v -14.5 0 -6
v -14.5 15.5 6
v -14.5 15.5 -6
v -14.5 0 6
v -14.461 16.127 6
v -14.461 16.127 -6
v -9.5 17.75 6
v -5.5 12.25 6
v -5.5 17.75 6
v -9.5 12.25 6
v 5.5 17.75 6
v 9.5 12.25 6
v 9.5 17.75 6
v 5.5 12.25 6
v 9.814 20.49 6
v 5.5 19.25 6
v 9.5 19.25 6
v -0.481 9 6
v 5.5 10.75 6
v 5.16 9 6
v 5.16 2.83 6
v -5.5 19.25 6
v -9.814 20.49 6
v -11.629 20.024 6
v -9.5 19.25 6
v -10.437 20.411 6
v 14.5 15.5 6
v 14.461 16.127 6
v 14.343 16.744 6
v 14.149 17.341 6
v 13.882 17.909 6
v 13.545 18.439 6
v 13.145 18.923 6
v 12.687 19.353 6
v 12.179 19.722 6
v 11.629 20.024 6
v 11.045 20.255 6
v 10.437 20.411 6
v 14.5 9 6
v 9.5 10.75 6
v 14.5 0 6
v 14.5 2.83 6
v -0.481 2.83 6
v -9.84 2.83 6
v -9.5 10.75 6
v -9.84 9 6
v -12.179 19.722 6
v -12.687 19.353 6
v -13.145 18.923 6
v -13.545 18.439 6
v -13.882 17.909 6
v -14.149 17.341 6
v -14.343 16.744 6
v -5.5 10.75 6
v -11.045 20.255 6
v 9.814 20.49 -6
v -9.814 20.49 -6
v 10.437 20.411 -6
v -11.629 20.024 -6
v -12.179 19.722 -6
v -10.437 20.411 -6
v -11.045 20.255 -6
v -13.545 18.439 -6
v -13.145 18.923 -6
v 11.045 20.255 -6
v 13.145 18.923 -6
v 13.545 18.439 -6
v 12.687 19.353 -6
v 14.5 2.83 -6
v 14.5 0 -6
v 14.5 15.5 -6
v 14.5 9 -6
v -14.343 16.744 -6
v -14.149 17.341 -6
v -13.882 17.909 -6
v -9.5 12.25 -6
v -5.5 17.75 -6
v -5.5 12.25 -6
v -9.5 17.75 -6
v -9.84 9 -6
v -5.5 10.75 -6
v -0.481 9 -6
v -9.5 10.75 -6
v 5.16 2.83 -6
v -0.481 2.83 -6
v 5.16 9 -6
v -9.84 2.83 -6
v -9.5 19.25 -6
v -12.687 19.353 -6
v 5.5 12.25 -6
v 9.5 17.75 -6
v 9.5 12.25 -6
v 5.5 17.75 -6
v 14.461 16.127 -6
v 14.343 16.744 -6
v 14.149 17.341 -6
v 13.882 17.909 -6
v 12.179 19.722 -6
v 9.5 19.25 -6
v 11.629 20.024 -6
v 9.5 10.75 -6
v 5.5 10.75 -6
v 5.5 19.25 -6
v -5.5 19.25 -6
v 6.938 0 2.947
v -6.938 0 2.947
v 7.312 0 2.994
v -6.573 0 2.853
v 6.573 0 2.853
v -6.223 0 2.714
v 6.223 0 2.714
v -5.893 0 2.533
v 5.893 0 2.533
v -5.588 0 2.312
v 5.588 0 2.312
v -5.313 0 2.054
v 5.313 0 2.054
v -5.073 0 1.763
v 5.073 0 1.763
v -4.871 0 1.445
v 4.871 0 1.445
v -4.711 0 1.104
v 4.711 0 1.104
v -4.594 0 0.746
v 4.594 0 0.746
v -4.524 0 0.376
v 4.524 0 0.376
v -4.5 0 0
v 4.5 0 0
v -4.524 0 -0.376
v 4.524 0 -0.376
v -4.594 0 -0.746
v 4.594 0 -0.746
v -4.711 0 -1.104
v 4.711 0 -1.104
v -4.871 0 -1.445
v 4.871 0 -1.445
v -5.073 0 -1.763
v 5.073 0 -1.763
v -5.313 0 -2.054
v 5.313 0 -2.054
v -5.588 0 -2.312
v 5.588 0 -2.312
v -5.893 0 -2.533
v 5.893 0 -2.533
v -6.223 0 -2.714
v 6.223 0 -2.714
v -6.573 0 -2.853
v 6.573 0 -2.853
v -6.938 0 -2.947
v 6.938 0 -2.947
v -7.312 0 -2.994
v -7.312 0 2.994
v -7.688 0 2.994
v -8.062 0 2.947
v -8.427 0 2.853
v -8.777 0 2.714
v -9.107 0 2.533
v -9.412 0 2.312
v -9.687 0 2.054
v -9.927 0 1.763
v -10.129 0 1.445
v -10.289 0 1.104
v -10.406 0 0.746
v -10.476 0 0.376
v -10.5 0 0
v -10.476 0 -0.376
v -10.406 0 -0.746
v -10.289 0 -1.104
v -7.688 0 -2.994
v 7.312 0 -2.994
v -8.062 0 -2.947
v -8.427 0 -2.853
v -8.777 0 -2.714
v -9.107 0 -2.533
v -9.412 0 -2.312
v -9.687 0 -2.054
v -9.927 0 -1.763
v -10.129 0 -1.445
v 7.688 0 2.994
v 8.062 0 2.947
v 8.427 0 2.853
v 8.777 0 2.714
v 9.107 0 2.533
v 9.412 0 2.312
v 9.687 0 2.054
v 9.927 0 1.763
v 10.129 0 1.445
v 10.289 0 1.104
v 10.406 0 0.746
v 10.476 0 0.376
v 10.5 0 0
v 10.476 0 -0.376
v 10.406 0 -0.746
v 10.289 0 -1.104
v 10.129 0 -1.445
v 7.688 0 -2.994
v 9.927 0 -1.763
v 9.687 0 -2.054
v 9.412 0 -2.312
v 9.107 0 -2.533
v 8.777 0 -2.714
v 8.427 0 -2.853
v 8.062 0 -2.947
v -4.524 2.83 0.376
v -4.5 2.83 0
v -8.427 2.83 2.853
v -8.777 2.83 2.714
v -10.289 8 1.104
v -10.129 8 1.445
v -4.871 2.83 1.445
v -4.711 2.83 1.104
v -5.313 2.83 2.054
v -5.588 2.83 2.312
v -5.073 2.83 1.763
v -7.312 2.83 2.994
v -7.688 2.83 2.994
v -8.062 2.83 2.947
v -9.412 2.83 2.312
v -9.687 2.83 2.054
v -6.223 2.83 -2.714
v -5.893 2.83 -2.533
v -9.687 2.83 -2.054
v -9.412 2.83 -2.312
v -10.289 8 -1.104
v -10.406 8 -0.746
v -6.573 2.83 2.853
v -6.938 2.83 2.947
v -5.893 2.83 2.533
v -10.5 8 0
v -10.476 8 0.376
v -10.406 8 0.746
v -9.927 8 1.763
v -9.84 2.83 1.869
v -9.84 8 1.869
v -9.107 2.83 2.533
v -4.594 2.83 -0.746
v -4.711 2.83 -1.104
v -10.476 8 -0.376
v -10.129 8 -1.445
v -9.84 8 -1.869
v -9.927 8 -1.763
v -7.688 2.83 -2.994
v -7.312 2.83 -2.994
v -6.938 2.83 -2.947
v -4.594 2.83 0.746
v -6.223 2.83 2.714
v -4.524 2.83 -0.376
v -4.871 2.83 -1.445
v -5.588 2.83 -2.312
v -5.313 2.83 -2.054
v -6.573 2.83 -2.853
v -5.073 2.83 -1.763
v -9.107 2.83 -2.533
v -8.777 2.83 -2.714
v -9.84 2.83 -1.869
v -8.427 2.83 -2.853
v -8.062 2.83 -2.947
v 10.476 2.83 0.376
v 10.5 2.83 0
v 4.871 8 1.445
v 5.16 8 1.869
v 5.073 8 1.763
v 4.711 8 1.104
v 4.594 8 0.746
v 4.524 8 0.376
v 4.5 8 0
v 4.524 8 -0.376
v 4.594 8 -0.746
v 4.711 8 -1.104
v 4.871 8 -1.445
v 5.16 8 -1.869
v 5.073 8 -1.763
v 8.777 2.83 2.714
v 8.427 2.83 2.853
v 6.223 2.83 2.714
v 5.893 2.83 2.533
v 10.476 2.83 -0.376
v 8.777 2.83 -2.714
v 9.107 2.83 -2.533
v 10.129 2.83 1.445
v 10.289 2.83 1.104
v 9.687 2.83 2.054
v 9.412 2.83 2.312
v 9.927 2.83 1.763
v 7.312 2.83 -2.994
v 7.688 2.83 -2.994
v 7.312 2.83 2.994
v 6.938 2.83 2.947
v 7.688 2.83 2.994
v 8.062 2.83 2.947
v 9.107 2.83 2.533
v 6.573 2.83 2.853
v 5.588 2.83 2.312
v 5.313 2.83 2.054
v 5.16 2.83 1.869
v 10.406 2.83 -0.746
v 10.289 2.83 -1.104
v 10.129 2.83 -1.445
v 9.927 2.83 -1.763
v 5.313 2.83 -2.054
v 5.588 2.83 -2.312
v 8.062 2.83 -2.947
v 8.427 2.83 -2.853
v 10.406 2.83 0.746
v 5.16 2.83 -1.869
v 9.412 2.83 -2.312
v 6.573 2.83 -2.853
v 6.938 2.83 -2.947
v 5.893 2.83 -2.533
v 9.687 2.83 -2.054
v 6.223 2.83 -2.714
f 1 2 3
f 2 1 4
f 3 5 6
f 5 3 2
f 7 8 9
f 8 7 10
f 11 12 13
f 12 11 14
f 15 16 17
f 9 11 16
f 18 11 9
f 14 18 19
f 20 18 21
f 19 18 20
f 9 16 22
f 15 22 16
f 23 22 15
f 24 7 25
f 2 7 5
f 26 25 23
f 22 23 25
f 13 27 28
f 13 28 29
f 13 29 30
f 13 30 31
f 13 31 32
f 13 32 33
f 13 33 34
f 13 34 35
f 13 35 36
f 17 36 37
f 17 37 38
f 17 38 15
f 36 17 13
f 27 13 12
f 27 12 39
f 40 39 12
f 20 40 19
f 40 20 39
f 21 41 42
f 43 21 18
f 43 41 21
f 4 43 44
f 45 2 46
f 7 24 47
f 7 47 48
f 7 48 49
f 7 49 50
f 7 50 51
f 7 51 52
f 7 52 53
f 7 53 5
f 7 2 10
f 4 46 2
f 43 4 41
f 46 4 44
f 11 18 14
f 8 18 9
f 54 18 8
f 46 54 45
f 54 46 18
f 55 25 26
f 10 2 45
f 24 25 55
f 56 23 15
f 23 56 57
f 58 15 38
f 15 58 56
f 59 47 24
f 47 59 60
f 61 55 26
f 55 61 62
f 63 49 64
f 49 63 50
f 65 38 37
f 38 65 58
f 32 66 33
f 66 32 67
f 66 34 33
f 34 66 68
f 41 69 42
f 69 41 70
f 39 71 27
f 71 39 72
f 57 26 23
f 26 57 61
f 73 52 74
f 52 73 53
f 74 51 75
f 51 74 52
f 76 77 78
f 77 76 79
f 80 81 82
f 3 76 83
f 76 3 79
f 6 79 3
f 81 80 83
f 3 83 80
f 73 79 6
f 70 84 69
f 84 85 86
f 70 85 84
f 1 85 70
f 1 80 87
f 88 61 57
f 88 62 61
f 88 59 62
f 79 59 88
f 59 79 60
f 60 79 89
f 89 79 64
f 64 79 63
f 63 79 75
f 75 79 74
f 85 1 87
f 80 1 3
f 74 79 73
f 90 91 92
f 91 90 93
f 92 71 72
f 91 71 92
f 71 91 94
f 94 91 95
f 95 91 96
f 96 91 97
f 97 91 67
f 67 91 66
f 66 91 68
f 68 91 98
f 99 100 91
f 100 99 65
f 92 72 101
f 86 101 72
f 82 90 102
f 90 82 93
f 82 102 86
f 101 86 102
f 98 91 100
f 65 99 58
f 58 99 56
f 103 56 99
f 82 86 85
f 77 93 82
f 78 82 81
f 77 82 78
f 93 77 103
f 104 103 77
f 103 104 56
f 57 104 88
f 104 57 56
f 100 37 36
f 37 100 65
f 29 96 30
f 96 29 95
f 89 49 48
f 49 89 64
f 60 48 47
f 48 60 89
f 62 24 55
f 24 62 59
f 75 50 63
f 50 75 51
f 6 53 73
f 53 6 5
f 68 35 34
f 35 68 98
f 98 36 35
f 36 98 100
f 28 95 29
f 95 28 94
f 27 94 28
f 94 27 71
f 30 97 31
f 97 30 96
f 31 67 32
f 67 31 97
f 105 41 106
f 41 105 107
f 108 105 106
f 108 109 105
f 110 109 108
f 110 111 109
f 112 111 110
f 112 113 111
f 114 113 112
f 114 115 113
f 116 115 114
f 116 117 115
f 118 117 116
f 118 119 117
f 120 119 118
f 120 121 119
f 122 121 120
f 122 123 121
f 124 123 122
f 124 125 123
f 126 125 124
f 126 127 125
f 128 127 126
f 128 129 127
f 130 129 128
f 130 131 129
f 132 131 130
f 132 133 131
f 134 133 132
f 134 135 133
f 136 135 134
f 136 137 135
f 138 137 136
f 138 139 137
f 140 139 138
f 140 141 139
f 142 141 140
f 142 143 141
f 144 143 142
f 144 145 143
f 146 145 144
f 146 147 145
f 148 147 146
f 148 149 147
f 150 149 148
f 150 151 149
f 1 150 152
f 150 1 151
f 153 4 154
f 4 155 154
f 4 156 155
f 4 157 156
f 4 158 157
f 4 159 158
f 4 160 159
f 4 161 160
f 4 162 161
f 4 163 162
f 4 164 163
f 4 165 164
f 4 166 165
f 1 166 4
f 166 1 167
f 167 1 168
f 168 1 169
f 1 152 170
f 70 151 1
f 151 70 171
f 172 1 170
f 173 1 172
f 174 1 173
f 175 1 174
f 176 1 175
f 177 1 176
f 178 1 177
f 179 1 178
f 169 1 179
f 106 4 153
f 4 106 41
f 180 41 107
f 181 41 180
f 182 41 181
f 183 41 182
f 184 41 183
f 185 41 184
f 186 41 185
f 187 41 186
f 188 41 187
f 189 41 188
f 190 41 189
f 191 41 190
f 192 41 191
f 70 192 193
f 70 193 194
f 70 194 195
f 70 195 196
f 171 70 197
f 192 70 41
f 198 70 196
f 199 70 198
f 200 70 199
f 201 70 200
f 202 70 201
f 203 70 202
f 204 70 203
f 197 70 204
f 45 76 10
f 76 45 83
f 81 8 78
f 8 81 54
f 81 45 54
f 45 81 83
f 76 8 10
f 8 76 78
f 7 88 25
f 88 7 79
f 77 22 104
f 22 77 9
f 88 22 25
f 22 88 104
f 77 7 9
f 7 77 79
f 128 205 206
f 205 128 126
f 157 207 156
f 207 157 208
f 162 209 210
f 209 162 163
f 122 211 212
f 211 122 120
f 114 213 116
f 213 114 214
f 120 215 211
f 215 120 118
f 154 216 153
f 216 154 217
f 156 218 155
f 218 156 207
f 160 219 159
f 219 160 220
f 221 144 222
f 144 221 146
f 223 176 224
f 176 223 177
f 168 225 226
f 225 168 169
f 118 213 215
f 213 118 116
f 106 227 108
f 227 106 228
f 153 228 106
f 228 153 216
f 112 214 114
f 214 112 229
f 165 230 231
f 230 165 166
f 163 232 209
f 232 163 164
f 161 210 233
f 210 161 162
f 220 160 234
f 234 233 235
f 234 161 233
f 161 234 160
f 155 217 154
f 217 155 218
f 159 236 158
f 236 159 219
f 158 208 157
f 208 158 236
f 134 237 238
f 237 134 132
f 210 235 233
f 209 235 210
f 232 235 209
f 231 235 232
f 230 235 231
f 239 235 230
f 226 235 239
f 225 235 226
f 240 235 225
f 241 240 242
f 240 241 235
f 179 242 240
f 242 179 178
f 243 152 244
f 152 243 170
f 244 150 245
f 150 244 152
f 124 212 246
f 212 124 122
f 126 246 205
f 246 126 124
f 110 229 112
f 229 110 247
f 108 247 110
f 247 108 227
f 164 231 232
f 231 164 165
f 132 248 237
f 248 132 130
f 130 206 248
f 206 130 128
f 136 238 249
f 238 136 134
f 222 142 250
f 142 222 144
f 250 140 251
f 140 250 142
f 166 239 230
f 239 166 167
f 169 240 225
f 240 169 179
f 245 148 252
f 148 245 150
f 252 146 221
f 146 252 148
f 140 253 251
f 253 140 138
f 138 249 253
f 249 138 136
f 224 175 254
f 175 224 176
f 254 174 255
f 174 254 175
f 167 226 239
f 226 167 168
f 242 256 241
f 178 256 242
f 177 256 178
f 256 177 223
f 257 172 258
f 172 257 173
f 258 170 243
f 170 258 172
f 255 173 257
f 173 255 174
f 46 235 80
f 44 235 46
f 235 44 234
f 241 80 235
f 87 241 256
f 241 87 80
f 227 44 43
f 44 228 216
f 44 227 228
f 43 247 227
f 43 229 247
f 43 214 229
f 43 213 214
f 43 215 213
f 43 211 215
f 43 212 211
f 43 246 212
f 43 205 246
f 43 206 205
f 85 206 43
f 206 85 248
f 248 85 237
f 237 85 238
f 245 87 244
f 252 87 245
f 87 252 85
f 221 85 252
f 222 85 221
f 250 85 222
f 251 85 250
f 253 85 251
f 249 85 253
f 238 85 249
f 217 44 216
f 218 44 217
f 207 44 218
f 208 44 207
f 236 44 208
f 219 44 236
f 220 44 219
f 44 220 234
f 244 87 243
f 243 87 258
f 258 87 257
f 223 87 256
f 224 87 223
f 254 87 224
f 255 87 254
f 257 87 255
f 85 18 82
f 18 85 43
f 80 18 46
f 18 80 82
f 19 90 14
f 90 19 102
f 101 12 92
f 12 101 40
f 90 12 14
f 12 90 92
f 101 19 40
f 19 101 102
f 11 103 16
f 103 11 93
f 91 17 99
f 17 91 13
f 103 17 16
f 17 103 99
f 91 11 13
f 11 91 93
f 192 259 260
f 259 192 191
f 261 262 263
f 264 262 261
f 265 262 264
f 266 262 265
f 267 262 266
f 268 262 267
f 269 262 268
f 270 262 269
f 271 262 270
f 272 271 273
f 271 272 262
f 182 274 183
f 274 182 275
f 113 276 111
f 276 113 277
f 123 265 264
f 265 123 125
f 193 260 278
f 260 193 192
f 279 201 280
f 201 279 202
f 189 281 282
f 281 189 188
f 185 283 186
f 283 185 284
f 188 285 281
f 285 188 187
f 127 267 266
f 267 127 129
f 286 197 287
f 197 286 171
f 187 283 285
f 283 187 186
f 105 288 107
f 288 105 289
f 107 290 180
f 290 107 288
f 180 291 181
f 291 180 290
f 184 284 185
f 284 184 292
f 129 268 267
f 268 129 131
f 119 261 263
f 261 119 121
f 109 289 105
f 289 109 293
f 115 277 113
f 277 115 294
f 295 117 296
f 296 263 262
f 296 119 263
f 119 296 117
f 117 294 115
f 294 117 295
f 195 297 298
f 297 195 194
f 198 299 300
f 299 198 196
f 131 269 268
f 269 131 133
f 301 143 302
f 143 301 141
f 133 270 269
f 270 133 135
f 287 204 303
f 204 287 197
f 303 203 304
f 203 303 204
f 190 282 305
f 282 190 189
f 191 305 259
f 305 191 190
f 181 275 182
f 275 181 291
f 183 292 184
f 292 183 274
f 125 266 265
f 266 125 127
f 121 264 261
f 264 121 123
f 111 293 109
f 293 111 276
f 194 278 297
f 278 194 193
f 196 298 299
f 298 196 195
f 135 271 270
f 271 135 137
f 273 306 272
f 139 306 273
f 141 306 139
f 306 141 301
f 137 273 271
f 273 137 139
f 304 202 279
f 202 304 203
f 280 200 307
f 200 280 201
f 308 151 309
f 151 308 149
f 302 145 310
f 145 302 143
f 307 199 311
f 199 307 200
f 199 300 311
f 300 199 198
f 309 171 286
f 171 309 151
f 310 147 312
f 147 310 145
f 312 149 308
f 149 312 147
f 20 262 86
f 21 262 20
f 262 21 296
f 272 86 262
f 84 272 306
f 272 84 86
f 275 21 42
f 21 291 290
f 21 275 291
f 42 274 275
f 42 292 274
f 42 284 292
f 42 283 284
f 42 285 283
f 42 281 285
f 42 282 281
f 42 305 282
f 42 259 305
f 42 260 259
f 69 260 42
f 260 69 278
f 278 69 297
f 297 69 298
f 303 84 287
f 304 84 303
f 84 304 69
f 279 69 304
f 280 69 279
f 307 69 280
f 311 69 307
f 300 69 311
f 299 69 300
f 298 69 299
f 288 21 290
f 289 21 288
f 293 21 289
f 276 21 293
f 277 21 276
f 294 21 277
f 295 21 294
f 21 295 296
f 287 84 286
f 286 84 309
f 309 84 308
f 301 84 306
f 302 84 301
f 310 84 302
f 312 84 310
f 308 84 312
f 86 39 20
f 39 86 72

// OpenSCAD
$fn = 50;


difference() {
	union() {
		translate(v = [0, 13.5000000000, -6.0000000000]) {
			rotate(a = [0, 0, 0]) {
				hull() {
					translate(v = [-9.5000000000, 2.0000000000, 0]) {
						rotate(a = [0, 0, 0]) {
							translate(v = [0, 0, 0]) {
								rotate(a = [0, 0, 0]) {
									cylinder(h = 12, r = 5);
								}
							}
						}
					}
					translate(v = [9.5000000000, 2.0000000000, 0]) {
						rotate(a = [0, 0, 0]) {
							translate(v = [0, 0, 0]) {
								rotate(a = [0, 0, 0]) {
									cylinder(h = 12, r = 5);
								}
							}
						}
					}
					translate(v = [-9.5000000000, -2.0000000000, 0]) {
						rotate(a = [0, 0, 0]) {
							translate(v = [0, 0, 0]) {
								rotate(a = [0, 0, 0]) {
									cylinder(h = 12, r = 5);
								}
							}
						}
					}
					translate(v = [9.5000000000, -2.0000000000, 0]) {
						rotate(a = [0, 0, 0]) {
							translate(v = [0, 0, 0]) {
								rotate(a = [0, 0, 0]) {
									cylinder(h = 12, r = 5);
								}
							}
						}
					}
				}
			}
		}
		translate(v = [-14.5000000000, 0, -6.0000000000]) {
			rotate(a = [0, 0, 0]) {
				cube(size = [29, 13.5000000000, 12]);
			}
		}
	}
	union() {
		translate(v = [-9.5000000000, 10.7500000000, -50]) {
			rotate(a = [0, 0, 0]) {
				cube(size = [4, 1.5000000000, 100]);
			}
		}
		translate(v = [-9.5000000000, 17.7500000000, -50]) {
			rotate(a = [0, 0, 0]) {
				cube(size = [4, 1.5000000000, 100]);
			}
		}
		translate(v = [-7.5000000000, 8, 0]) {
			rotate(a = [90, 0, 0]) {
				cylinder(h = 8, r = 3.0000000000);
			}
		}
		translate(v = [-9.8396880416, 9, -25]) {
			rotate(a = [90, 0, 0]) {
				cube(size = [9.3587521664, 100, 6.1700000000]);
			}
		}
		translate(v = [5.5000000000, 10.7500000000, -50]) {
			rotate(a = [0, 0, 0]) {
				cube(size = [4, 1.5000000000, 100]);
			}
		}
		translate(v = [5.5000000000, 17.7500000000, -50]) {
			rotate(a = [0, 0, 0]) {
				cube(size = [4, 1.5000000000, 100]);
			}
		}
		translate(v = [7.5000000000, 8, 0]) {
			rotate(a = [90, 0, 0]) {
				cylinder(h = 8, r = 3.0000000000);
			}
		}
		translate(v = [5.1603119584, 9, -25]) {
			rotate(a = [90, 0, 0]) {
				cube(size = [9.3587521664, 100, 6.1700000000]);
			}
		}
	}
}
